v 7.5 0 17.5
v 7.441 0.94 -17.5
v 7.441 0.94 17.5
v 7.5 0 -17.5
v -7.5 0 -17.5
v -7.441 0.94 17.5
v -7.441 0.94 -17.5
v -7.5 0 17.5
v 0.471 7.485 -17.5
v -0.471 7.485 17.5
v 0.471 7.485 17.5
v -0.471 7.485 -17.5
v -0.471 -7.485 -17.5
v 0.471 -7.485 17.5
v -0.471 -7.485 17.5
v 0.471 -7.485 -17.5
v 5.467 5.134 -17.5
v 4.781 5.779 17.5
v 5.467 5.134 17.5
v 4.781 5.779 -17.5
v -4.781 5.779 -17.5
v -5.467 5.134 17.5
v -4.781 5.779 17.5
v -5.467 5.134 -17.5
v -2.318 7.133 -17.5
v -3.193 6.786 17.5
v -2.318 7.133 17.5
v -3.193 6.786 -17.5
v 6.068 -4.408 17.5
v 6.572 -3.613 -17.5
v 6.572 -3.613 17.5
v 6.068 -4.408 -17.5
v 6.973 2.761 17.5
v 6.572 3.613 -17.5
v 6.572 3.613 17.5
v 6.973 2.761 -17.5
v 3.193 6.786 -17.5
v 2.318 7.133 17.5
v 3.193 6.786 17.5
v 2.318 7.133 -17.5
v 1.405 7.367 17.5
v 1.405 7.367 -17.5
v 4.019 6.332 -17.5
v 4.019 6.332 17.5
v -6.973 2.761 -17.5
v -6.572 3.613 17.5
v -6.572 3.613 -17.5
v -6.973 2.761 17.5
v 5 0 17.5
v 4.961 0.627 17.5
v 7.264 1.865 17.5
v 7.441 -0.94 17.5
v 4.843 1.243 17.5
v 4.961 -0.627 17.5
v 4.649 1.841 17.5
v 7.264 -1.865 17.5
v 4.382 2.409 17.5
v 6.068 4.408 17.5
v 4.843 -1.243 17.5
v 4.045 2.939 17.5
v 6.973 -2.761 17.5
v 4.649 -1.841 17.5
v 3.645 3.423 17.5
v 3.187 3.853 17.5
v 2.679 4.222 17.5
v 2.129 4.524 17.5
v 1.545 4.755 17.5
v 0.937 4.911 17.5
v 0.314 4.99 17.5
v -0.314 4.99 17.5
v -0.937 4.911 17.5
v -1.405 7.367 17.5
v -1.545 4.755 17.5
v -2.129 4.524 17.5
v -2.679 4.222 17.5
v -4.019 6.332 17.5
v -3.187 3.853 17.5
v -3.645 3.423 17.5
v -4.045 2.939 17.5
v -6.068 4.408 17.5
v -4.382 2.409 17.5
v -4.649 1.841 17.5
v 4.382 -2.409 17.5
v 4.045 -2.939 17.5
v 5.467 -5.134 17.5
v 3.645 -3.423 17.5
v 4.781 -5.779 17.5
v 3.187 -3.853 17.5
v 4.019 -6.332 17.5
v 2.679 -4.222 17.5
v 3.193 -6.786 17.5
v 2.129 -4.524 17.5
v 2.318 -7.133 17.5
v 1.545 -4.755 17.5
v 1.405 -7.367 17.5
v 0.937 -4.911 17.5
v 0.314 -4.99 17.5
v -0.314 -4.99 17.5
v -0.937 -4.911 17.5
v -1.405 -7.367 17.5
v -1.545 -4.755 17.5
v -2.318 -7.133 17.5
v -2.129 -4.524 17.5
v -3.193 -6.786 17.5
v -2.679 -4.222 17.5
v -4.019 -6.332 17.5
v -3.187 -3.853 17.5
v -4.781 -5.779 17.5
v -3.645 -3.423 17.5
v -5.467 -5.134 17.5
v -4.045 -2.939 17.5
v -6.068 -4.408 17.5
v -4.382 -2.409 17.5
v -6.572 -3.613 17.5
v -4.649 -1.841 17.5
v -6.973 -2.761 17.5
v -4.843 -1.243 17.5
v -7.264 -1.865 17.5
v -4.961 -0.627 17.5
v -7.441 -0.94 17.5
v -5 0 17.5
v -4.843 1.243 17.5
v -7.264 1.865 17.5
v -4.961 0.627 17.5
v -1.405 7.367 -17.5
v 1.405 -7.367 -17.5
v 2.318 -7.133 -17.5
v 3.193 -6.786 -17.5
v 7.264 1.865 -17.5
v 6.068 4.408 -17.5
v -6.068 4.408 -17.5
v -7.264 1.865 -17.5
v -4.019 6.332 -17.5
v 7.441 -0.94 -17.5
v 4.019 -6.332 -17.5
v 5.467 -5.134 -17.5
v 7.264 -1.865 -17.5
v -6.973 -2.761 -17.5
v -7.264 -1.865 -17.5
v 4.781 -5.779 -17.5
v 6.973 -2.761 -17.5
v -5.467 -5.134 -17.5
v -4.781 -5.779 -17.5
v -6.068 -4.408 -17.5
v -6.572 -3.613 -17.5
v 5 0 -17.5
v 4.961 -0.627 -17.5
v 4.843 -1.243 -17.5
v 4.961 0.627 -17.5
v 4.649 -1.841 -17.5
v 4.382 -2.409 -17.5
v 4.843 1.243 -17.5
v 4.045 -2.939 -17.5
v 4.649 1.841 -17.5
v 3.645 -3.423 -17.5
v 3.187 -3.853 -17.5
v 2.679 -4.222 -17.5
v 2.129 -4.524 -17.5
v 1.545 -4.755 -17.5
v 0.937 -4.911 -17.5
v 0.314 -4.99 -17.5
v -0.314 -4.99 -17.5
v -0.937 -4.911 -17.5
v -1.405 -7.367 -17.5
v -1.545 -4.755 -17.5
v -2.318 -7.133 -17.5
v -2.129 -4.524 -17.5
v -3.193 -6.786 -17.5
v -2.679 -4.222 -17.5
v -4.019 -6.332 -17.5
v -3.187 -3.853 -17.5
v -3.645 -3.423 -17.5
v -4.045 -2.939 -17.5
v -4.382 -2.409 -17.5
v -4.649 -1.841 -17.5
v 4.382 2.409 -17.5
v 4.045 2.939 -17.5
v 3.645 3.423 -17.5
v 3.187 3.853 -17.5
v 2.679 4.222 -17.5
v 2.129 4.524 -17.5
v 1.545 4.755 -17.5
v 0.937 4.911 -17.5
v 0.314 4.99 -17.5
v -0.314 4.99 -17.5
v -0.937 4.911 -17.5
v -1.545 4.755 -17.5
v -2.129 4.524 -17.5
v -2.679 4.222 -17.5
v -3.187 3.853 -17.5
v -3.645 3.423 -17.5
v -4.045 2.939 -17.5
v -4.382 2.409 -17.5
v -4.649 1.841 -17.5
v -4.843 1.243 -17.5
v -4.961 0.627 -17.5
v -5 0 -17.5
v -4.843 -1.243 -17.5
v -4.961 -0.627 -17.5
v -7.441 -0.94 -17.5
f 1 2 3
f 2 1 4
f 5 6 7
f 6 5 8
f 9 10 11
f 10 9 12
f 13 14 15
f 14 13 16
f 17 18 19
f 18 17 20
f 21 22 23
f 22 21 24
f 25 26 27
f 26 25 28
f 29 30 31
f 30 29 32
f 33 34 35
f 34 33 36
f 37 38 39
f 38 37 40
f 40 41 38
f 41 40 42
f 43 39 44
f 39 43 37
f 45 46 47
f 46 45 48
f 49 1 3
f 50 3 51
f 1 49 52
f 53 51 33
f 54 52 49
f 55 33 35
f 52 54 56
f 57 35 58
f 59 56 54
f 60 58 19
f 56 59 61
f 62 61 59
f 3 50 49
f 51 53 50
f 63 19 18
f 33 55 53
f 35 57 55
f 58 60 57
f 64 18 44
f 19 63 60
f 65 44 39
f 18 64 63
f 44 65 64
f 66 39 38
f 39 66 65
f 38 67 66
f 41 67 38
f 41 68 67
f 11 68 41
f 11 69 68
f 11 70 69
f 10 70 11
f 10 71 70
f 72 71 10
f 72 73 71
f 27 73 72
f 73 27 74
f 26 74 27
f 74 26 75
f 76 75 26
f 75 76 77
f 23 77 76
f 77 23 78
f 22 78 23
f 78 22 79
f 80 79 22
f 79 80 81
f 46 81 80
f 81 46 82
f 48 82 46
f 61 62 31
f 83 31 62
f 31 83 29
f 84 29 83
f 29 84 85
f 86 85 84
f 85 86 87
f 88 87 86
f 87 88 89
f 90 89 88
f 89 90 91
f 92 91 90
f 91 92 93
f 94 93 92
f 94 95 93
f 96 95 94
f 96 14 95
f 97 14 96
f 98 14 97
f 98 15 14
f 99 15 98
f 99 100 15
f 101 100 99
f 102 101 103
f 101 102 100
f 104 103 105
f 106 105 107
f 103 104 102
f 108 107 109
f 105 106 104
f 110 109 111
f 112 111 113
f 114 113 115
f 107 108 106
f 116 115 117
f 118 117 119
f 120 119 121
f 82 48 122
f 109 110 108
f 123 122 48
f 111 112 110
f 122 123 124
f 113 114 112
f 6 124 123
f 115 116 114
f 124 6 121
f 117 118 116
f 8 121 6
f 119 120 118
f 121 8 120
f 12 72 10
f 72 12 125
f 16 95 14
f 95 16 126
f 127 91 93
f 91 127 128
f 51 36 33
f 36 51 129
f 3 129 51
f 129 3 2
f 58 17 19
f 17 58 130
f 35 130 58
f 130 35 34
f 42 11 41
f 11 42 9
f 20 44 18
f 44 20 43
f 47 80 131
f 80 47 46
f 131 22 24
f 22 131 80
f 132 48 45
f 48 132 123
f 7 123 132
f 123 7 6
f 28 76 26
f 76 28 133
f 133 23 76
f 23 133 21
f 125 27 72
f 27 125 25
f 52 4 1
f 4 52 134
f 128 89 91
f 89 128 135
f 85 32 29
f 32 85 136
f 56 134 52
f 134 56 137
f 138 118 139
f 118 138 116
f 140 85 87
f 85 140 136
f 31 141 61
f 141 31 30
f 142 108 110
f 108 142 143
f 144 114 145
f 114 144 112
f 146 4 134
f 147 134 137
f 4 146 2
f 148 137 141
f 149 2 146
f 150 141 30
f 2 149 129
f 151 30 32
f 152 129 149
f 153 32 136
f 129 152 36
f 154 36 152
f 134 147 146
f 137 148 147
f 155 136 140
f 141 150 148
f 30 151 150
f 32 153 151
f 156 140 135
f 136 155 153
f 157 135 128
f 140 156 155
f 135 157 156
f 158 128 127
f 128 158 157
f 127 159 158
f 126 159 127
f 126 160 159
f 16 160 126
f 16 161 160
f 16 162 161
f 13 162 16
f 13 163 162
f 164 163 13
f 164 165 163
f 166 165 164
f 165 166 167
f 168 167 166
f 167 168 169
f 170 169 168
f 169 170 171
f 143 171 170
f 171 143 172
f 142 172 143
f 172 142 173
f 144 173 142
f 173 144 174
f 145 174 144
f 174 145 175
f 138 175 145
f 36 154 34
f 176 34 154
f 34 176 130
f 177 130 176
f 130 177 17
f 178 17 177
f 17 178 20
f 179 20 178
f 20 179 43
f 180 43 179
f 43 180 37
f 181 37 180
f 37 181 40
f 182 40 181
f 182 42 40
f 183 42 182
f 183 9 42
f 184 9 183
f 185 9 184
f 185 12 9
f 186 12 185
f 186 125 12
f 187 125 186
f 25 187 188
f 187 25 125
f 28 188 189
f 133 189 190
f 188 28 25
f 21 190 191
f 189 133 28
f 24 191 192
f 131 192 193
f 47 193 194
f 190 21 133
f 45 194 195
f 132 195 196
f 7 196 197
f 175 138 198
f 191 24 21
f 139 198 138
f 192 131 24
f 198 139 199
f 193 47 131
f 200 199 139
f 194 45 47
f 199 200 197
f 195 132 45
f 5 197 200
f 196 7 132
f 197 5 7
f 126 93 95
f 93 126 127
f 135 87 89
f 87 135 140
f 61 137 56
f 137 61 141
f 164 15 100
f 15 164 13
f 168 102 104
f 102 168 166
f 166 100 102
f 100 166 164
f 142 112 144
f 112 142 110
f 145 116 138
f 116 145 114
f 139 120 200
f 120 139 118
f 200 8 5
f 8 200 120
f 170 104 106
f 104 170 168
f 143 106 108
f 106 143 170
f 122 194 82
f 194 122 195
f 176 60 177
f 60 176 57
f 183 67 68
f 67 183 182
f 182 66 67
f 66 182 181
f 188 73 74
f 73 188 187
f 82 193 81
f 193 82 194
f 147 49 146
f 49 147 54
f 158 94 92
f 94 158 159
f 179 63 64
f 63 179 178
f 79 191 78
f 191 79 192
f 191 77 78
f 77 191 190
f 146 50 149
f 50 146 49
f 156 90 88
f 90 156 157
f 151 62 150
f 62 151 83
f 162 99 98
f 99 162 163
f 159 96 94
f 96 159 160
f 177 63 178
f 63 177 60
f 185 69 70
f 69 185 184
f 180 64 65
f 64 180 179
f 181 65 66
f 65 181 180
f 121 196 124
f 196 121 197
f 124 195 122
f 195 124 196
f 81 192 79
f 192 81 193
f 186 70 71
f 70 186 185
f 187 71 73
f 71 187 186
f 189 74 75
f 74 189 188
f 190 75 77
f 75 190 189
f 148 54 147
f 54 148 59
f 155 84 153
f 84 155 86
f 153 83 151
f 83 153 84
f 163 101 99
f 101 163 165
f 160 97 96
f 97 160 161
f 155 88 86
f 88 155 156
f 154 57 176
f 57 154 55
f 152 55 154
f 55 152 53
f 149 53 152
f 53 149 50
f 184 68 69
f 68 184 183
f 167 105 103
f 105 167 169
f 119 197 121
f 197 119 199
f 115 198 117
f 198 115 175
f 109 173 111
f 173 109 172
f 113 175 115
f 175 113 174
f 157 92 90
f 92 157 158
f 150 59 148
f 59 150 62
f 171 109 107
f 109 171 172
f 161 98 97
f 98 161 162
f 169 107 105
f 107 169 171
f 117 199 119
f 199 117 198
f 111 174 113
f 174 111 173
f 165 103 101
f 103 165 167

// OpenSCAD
$fn = 50;


difference() {
	union() {
		translate(v = [0, 0, -17.5000000000]) {
			cylinder(h = 35, r = 7.5000000000);
		}
	}
	union() {
		translate(v = [0, 0, -100.0000000000]) {
			cylinder(h = 200, r = 5.0000000000);
		}
	}
}
